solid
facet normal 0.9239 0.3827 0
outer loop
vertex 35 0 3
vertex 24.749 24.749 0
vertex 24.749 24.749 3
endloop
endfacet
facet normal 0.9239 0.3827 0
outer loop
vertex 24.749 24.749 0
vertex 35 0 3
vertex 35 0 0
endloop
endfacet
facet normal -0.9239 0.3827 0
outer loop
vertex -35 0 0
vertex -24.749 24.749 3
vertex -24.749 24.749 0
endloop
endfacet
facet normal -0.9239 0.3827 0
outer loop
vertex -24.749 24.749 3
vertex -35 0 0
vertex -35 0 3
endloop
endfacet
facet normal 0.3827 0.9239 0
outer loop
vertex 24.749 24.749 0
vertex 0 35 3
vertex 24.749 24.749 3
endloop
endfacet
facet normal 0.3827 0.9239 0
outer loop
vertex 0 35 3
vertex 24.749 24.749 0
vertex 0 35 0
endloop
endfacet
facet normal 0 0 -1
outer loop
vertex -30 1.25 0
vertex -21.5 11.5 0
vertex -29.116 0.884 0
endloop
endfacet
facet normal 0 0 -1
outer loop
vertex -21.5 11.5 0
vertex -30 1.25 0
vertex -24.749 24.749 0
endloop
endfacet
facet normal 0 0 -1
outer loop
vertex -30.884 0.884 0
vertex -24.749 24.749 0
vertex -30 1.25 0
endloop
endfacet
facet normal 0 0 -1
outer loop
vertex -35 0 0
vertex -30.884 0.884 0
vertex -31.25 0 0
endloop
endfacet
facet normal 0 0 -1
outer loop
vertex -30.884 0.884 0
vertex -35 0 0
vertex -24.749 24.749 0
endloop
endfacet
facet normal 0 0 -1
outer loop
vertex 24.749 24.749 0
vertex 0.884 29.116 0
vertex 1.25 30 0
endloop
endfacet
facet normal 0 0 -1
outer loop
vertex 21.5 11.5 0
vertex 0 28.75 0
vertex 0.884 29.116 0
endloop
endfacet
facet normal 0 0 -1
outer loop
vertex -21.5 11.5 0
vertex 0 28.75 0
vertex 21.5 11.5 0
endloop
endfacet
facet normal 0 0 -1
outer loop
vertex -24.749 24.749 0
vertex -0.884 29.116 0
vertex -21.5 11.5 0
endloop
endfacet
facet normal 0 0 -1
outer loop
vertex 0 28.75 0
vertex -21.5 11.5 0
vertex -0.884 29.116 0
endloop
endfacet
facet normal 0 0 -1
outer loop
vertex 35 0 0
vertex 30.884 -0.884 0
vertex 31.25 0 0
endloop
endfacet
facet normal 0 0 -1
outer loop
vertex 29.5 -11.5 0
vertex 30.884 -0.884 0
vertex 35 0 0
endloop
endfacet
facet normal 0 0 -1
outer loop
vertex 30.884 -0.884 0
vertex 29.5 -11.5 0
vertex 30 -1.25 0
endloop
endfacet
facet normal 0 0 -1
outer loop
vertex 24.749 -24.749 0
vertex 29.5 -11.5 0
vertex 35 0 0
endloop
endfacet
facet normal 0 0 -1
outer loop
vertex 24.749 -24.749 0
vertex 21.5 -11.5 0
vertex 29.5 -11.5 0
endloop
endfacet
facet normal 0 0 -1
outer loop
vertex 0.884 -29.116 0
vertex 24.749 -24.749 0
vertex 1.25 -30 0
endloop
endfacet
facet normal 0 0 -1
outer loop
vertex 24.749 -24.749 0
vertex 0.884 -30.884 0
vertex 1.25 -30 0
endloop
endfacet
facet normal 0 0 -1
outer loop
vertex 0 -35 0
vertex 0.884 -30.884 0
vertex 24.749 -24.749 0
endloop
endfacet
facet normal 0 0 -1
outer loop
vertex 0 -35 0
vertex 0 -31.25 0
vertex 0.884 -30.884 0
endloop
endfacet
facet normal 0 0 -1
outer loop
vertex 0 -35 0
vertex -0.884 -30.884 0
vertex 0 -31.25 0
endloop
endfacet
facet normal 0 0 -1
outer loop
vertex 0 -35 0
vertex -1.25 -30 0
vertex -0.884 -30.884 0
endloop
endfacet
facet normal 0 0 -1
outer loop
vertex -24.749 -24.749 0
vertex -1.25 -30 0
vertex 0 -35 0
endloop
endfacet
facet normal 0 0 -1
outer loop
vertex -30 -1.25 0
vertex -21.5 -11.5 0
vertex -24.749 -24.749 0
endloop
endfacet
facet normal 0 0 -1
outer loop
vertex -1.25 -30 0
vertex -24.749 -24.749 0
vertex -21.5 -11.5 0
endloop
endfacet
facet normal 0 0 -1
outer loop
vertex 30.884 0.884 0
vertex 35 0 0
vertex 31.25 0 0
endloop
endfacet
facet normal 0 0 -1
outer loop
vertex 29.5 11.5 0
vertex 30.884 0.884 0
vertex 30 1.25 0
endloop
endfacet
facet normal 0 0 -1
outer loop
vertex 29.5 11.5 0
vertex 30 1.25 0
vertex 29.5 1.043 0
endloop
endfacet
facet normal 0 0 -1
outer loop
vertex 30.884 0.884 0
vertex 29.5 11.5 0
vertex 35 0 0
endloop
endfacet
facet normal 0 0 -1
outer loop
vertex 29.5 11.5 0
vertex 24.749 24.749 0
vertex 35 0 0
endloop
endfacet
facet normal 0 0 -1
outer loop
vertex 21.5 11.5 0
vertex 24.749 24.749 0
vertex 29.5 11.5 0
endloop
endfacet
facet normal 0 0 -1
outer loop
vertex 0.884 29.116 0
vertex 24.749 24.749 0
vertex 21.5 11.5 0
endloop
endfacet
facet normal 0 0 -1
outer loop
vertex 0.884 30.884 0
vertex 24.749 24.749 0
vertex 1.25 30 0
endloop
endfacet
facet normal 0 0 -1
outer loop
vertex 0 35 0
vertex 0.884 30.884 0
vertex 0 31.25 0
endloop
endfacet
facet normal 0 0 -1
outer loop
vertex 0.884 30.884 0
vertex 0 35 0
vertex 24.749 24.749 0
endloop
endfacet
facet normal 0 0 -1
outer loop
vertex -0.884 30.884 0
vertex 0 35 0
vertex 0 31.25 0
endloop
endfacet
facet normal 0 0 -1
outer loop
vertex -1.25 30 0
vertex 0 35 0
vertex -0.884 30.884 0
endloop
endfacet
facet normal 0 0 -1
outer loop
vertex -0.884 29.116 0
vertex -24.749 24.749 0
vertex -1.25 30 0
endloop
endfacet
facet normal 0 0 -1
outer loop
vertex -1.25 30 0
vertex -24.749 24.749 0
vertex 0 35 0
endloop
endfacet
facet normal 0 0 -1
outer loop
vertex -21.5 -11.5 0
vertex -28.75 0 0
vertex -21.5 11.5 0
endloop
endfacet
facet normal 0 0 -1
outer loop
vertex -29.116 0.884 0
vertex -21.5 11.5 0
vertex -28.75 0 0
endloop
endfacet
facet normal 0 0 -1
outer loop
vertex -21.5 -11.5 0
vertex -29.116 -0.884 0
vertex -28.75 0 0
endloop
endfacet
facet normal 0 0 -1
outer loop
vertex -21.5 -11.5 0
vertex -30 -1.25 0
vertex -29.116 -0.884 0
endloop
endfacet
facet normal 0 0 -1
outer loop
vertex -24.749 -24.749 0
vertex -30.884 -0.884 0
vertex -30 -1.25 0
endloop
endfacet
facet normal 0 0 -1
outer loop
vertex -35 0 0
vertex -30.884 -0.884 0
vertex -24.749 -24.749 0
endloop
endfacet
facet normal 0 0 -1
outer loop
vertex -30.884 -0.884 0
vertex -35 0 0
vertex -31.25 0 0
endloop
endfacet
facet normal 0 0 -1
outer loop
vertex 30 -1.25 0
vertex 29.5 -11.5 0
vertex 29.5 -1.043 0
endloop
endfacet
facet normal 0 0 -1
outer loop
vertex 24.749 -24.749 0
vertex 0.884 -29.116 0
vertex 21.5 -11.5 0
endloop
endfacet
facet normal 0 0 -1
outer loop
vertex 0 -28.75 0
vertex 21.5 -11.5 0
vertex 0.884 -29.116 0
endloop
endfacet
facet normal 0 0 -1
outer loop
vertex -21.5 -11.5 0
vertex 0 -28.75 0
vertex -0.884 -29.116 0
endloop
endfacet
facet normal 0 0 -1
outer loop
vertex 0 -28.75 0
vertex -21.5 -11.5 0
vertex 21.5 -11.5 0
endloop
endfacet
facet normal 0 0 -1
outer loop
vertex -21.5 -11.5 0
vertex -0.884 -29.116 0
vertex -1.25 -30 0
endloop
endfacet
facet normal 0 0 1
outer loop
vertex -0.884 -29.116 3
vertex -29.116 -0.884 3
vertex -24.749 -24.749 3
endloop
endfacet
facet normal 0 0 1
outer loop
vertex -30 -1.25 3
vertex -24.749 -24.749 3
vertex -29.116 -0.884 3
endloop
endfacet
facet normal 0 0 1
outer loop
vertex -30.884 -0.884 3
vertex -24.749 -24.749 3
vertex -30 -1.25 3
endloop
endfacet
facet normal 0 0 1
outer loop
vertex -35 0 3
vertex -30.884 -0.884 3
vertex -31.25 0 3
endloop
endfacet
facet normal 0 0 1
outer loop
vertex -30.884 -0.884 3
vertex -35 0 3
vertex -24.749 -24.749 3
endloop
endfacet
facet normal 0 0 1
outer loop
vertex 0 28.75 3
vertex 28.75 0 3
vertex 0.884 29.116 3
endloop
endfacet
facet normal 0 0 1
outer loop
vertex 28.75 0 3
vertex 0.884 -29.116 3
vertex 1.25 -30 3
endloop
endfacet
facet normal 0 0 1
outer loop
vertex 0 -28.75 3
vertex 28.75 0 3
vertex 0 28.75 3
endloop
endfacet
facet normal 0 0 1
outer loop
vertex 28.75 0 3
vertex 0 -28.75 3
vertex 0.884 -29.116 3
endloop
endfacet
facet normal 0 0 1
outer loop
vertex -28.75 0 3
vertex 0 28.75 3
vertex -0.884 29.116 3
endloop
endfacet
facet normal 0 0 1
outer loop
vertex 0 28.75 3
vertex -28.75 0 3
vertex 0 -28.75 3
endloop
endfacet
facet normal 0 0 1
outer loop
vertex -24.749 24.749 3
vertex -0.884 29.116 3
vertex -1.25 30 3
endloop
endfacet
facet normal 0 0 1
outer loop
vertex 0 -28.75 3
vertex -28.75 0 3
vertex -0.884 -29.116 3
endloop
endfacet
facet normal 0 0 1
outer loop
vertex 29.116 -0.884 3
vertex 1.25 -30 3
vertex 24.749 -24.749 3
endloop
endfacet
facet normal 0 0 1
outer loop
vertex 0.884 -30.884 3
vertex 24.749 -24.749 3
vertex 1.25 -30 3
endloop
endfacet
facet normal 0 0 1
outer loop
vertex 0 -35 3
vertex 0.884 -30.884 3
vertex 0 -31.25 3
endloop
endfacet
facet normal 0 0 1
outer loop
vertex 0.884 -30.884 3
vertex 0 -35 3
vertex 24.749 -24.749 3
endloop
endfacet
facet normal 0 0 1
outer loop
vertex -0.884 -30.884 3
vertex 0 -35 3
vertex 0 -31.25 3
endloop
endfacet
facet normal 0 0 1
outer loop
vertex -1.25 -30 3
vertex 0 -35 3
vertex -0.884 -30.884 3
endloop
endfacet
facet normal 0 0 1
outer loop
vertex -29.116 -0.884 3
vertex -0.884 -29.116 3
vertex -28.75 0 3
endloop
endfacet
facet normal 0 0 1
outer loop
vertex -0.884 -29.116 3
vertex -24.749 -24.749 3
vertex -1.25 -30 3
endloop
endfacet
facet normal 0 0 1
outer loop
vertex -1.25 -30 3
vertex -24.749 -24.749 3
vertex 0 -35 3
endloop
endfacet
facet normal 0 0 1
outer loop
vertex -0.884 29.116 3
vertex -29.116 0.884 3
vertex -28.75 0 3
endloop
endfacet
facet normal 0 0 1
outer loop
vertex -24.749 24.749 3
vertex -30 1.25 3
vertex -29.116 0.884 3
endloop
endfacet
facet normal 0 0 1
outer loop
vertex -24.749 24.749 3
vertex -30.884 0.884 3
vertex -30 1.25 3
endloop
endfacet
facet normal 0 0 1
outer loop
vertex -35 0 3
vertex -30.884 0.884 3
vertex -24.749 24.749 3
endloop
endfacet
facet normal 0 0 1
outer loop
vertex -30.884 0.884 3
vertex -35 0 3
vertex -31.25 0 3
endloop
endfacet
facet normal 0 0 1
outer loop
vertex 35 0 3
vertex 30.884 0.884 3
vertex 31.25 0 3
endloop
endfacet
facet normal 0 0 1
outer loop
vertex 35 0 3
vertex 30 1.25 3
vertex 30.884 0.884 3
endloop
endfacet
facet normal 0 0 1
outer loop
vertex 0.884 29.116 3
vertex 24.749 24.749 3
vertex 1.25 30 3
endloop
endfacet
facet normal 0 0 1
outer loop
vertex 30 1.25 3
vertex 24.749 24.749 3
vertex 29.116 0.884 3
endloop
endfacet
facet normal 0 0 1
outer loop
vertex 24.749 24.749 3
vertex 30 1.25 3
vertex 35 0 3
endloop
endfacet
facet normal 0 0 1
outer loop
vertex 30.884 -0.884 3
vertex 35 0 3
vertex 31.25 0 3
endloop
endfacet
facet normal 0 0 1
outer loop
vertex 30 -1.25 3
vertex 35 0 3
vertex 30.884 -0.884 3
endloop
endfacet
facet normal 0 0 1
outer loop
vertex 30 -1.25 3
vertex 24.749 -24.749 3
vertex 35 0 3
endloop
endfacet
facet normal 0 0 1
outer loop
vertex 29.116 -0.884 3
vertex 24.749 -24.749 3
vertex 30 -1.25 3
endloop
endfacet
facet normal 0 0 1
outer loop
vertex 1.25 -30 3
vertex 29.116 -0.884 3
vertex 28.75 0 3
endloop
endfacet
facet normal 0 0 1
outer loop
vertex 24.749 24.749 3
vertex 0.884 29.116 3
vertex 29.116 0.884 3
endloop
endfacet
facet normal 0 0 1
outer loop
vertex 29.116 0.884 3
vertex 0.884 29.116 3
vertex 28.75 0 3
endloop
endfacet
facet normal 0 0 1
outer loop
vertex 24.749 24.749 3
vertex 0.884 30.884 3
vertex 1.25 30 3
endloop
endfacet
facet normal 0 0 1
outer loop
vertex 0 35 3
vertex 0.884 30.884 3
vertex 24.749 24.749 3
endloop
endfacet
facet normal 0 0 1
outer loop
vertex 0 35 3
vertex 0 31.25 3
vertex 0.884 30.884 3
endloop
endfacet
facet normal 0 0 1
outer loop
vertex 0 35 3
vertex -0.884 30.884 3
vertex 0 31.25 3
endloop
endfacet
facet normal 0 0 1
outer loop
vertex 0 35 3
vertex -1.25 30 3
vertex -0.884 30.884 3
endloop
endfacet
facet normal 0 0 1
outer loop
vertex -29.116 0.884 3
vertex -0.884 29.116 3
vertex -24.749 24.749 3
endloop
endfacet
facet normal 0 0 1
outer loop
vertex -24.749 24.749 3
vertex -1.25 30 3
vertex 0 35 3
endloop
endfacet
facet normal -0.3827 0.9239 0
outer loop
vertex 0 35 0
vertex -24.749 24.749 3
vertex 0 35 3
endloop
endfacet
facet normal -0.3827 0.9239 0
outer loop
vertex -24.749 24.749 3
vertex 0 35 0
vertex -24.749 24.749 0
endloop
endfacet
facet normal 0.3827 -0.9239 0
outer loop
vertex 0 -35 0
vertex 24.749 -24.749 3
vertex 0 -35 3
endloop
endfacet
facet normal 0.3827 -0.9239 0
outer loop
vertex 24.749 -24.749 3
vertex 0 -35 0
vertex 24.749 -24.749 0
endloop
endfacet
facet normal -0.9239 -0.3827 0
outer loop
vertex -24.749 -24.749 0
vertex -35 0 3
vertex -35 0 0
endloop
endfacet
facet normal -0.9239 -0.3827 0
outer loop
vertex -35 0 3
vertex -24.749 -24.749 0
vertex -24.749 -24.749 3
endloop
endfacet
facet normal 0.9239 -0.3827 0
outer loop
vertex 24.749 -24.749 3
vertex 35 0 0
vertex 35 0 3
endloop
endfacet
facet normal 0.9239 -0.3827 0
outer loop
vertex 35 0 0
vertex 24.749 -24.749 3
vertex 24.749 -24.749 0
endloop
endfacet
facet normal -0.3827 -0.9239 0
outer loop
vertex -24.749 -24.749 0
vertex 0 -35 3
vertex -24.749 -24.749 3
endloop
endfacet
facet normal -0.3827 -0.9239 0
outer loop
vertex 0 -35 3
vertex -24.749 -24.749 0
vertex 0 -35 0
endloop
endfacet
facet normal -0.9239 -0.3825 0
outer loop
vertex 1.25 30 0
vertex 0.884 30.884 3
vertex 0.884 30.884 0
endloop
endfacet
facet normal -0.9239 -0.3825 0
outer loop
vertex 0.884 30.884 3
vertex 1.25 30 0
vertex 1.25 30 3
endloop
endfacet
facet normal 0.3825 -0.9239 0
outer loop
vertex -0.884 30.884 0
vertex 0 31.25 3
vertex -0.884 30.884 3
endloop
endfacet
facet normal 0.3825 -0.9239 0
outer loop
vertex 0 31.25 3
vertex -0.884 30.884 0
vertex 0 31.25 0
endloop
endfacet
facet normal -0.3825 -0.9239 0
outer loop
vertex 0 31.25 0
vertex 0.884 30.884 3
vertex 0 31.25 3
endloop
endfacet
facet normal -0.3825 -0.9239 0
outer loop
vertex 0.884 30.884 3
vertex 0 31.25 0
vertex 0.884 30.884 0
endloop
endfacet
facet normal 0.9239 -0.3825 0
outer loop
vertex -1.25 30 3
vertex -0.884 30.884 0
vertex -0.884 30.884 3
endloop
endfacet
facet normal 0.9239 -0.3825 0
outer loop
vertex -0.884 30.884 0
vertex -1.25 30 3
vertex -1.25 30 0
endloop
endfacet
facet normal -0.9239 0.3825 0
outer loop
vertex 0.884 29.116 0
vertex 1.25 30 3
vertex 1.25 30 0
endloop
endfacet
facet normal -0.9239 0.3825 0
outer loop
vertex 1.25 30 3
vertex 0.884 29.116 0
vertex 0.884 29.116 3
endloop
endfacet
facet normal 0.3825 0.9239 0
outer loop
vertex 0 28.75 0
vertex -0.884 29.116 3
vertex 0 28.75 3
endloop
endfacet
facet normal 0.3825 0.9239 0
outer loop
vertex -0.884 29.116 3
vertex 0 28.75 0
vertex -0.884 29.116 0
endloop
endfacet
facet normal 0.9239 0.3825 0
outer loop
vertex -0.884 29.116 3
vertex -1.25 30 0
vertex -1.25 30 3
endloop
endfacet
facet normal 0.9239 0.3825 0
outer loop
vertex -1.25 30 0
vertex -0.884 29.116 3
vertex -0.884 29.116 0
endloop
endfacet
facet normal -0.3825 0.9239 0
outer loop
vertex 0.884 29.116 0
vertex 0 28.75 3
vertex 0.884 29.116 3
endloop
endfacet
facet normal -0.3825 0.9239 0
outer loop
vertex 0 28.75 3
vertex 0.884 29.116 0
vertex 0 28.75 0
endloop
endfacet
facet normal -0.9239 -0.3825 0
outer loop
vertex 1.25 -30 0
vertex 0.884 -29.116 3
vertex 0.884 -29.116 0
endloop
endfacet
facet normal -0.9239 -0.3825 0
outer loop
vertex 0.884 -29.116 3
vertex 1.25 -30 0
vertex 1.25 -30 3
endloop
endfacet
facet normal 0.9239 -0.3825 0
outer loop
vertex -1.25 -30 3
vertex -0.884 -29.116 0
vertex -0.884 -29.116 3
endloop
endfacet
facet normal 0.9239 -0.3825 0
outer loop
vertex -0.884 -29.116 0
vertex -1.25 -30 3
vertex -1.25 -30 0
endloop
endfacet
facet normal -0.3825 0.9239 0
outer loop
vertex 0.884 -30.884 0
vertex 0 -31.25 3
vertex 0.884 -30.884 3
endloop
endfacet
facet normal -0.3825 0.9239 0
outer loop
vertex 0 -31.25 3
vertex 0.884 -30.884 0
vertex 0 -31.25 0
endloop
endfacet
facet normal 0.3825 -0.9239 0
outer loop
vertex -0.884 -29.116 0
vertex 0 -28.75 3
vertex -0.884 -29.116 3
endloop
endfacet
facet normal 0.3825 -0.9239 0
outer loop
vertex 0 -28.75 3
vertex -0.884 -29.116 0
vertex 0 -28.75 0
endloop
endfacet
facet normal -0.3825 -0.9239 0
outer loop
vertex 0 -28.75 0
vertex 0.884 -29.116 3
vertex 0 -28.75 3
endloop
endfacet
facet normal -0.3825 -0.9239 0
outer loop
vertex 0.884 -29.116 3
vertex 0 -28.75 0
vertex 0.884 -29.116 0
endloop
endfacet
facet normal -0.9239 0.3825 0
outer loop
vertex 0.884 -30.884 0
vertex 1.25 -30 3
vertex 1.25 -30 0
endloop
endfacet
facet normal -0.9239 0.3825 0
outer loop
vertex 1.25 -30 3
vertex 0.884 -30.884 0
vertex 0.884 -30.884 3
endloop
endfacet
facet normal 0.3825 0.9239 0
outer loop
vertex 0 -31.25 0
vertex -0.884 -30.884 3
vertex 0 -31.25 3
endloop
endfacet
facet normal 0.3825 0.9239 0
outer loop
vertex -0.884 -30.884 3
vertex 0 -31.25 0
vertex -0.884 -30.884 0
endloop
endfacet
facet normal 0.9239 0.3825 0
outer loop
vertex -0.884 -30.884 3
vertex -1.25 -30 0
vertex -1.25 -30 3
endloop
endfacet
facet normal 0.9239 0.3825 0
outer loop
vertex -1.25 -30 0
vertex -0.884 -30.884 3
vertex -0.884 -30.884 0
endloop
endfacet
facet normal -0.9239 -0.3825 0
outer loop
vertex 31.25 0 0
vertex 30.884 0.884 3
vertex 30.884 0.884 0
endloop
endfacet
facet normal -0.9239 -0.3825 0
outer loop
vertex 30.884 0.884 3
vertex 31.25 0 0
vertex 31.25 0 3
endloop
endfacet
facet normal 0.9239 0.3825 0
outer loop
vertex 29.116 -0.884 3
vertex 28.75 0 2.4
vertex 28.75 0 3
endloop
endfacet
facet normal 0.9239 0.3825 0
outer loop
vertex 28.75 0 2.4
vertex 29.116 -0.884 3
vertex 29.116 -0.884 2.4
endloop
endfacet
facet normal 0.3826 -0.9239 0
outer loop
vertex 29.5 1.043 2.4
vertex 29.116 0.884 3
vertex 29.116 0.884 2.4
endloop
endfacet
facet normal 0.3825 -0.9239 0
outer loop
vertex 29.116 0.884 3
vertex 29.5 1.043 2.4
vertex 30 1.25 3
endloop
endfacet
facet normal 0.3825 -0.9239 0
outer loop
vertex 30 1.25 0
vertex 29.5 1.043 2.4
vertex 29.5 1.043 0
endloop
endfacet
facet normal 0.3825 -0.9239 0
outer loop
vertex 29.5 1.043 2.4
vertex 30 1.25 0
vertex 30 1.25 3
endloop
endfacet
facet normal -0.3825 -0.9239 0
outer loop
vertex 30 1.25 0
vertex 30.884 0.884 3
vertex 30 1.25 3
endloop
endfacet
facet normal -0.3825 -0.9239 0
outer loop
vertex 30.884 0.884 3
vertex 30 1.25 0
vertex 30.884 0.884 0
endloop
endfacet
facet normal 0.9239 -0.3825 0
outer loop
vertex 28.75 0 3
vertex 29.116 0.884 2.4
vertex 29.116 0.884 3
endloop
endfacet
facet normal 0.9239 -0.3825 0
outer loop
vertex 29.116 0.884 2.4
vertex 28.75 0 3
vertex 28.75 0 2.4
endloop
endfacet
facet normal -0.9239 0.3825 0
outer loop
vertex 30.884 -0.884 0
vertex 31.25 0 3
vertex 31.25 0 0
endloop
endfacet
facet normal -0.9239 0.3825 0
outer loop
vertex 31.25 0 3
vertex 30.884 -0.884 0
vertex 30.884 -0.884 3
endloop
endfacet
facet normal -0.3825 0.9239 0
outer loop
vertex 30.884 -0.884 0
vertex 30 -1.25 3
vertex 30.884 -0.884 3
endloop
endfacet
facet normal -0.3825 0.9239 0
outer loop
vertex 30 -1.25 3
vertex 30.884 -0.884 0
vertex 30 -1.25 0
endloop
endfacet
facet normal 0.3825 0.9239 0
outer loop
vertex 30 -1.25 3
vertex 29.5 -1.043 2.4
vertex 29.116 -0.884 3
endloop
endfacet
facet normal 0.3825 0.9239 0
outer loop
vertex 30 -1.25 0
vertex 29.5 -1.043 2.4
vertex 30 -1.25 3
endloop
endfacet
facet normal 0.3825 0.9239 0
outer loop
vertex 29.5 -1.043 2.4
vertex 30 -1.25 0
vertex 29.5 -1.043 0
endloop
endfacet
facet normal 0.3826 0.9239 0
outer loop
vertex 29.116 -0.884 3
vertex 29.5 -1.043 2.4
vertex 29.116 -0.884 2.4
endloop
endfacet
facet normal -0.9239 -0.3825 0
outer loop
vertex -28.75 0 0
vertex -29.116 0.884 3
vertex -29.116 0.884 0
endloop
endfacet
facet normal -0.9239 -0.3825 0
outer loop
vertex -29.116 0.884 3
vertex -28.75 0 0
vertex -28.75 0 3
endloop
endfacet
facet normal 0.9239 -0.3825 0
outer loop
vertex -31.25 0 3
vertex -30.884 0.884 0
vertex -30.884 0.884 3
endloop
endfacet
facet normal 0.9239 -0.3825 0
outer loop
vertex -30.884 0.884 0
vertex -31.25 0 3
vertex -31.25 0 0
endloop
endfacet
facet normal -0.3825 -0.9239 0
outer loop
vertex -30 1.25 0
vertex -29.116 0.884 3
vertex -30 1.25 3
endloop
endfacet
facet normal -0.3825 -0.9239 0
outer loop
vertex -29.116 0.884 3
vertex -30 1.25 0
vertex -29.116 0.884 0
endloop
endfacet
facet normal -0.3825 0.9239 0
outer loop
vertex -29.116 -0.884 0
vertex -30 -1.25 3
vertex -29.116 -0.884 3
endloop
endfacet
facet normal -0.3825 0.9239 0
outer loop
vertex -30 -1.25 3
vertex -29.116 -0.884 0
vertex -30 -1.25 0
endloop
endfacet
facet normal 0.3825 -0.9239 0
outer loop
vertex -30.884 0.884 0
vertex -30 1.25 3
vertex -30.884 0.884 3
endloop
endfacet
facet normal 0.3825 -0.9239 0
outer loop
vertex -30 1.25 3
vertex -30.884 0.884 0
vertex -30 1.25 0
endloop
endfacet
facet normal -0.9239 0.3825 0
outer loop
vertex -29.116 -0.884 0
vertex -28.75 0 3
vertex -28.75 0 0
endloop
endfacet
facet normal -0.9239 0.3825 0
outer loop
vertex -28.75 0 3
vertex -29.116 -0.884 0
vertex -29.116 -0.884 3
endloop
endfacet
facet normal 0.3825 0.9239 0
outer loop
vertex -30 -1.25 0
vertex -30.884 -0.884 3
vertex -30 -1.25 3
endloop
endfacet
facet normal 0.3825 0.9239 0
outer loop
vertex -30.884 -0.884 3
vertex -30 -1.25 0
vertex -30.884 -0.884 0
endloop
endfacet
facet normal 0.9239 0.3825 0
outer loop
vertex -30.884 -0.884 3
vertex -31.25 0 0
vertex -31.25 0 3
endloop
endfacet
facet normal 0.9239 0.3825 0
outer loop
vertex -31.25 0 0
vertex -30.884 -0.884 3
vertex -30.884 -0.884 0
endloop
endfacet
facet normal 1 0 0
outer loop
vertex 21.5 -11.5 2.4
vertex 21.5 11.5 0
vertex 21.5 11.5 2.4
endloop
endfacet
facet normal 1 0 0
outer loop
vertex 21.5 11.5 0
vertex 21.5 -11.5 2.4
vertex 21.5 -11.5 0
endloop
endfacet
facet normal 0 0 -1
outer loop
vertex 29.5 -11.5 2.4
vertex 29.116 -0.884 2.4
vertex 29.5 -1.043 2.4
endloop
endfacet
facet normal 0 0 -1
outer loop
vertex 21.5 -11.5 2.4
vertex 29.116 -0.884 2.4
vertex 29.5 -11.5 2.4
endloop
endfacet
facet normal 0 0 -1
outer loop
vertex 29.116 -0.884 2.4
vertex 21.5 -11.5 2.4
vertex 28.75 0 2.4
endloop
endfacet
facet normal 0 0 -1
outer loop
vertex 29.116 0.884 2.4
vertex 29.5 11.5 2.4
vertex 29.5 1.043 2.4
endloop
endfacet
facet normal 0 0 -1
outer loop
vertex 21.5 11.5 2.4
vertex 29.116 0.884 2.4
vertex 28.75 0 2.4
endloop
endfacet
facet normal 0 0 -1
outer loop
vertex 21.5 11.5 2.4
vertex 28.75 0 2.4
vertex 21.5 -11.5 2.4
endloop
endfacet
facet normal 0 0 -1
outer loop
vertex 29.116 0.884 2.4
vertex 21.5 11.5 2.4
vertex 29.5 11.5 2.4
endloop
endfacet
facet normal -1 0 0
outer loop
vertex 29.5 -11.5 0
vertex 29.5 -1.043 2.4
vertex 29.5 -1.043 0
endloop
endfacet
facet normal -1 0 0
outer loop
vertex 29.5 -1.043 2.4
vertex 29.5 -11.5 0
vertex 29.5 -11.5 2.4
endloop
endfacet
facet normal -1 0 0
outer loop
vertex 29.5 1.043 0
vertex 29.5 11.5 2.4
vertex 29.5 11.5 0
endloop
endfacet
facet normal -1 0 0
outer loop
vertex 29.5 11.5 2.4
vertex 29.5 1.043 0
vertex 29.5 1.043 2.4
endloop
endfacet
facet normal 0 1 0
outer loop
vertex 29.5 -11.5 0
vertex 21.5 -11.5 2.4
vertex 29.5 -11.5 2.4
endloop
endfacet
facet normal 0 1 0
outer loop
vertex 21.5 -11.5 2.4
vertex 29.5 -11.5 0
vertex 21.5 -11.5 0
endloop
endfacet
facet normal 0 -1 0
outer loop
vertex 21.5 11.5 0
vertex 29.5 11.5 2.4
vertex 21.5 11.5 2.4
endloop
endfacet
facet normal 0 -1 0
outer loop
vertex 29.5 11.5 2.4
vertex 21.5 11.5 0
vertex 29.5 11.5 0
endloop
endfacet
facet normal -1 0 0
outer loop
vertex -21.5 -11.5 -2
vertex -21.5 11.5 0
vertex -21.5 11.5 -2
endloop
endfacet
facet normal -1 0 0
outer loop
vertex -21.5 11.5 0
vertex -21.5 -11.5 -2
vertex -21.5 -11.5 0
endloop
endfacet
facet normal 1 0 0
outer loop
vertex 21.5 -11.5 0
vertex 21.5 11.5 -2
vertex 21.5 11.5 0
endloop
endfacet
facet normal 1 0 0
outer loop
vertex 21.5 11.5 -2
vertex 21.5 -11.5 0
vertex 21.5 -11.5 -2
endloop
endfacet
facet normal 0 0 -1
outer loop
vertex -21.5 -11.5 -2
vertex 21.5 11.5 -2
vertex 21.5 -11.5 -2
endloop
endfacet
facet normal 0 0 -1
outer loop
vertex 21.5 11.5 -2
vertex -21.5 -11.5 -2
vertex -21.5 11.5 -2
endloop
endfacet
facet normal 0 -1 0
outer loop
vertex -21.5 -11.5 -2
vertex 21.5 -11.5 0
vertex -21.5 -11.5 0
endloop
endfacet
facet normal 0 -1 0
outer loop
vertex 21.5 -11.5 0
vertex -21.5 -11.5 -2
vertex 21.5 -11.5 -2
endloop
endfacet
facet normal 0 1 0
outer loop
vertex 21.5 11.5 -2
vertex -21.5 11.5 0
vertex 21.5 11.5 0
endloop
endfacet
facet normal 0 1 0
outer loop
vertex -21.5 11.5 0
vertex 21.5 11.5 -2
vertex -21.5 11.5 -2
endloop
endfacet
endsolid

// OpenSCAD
$fn = 8;

cover_height = 3;
cover_diameter = 70;
cover_pad = 2;

led_height = 20;
led_diameter = 5;

battery_height = 12;
battery_length = 45 + 5 + 1 -8;
battery_width = 2 * battery_height -1;

screw_diameter = 2.5;
screw_length = 15;

union(){
    difference(){
        cylinder(cover_height, cover_diameter/2, cover_diameter/2);
        //cylinder(led_height, led_diameter/2, led_diameter/2);

        // holes
        translate([0,cover_diameter/2 - 5,0]){
            translate([0,0,cover_height - screw_length]){
                cylinder(screw_length, screw_diameter/2, screw_diameter/2);
            }
        }

        translate([0,-(cover_diameter/2 - 5),0]){
            translate([0,0,cover_height - screw_length]){
                cylinder(screw_length, screw_diameter/2, screw_diameter/2);
            }
        }
        
            translate([cover_diameter/2 - 5,0,0]){
            translate([0,0,cover_height - screw_length]){
                cylinder(screw_length, screw_diameter/2, screw_diameter/2);
            }
        }

        translate([-(cover_diameter/2 - 5),0,0]){
            translate([0,0,cover_height - screw_length]){
                cylinder(screw_length, screw_diameter/2, screw_diameter/2);
            }
        }

        translate([battery_length/2+4,0,1.2]){
            cube([8,battery_width,2.4], center = true);
        }
    }

    translate([0,0,- cover_pad/2]){
        cube([battery_length, battery_width, cover_pad], center = true);
    }
}
